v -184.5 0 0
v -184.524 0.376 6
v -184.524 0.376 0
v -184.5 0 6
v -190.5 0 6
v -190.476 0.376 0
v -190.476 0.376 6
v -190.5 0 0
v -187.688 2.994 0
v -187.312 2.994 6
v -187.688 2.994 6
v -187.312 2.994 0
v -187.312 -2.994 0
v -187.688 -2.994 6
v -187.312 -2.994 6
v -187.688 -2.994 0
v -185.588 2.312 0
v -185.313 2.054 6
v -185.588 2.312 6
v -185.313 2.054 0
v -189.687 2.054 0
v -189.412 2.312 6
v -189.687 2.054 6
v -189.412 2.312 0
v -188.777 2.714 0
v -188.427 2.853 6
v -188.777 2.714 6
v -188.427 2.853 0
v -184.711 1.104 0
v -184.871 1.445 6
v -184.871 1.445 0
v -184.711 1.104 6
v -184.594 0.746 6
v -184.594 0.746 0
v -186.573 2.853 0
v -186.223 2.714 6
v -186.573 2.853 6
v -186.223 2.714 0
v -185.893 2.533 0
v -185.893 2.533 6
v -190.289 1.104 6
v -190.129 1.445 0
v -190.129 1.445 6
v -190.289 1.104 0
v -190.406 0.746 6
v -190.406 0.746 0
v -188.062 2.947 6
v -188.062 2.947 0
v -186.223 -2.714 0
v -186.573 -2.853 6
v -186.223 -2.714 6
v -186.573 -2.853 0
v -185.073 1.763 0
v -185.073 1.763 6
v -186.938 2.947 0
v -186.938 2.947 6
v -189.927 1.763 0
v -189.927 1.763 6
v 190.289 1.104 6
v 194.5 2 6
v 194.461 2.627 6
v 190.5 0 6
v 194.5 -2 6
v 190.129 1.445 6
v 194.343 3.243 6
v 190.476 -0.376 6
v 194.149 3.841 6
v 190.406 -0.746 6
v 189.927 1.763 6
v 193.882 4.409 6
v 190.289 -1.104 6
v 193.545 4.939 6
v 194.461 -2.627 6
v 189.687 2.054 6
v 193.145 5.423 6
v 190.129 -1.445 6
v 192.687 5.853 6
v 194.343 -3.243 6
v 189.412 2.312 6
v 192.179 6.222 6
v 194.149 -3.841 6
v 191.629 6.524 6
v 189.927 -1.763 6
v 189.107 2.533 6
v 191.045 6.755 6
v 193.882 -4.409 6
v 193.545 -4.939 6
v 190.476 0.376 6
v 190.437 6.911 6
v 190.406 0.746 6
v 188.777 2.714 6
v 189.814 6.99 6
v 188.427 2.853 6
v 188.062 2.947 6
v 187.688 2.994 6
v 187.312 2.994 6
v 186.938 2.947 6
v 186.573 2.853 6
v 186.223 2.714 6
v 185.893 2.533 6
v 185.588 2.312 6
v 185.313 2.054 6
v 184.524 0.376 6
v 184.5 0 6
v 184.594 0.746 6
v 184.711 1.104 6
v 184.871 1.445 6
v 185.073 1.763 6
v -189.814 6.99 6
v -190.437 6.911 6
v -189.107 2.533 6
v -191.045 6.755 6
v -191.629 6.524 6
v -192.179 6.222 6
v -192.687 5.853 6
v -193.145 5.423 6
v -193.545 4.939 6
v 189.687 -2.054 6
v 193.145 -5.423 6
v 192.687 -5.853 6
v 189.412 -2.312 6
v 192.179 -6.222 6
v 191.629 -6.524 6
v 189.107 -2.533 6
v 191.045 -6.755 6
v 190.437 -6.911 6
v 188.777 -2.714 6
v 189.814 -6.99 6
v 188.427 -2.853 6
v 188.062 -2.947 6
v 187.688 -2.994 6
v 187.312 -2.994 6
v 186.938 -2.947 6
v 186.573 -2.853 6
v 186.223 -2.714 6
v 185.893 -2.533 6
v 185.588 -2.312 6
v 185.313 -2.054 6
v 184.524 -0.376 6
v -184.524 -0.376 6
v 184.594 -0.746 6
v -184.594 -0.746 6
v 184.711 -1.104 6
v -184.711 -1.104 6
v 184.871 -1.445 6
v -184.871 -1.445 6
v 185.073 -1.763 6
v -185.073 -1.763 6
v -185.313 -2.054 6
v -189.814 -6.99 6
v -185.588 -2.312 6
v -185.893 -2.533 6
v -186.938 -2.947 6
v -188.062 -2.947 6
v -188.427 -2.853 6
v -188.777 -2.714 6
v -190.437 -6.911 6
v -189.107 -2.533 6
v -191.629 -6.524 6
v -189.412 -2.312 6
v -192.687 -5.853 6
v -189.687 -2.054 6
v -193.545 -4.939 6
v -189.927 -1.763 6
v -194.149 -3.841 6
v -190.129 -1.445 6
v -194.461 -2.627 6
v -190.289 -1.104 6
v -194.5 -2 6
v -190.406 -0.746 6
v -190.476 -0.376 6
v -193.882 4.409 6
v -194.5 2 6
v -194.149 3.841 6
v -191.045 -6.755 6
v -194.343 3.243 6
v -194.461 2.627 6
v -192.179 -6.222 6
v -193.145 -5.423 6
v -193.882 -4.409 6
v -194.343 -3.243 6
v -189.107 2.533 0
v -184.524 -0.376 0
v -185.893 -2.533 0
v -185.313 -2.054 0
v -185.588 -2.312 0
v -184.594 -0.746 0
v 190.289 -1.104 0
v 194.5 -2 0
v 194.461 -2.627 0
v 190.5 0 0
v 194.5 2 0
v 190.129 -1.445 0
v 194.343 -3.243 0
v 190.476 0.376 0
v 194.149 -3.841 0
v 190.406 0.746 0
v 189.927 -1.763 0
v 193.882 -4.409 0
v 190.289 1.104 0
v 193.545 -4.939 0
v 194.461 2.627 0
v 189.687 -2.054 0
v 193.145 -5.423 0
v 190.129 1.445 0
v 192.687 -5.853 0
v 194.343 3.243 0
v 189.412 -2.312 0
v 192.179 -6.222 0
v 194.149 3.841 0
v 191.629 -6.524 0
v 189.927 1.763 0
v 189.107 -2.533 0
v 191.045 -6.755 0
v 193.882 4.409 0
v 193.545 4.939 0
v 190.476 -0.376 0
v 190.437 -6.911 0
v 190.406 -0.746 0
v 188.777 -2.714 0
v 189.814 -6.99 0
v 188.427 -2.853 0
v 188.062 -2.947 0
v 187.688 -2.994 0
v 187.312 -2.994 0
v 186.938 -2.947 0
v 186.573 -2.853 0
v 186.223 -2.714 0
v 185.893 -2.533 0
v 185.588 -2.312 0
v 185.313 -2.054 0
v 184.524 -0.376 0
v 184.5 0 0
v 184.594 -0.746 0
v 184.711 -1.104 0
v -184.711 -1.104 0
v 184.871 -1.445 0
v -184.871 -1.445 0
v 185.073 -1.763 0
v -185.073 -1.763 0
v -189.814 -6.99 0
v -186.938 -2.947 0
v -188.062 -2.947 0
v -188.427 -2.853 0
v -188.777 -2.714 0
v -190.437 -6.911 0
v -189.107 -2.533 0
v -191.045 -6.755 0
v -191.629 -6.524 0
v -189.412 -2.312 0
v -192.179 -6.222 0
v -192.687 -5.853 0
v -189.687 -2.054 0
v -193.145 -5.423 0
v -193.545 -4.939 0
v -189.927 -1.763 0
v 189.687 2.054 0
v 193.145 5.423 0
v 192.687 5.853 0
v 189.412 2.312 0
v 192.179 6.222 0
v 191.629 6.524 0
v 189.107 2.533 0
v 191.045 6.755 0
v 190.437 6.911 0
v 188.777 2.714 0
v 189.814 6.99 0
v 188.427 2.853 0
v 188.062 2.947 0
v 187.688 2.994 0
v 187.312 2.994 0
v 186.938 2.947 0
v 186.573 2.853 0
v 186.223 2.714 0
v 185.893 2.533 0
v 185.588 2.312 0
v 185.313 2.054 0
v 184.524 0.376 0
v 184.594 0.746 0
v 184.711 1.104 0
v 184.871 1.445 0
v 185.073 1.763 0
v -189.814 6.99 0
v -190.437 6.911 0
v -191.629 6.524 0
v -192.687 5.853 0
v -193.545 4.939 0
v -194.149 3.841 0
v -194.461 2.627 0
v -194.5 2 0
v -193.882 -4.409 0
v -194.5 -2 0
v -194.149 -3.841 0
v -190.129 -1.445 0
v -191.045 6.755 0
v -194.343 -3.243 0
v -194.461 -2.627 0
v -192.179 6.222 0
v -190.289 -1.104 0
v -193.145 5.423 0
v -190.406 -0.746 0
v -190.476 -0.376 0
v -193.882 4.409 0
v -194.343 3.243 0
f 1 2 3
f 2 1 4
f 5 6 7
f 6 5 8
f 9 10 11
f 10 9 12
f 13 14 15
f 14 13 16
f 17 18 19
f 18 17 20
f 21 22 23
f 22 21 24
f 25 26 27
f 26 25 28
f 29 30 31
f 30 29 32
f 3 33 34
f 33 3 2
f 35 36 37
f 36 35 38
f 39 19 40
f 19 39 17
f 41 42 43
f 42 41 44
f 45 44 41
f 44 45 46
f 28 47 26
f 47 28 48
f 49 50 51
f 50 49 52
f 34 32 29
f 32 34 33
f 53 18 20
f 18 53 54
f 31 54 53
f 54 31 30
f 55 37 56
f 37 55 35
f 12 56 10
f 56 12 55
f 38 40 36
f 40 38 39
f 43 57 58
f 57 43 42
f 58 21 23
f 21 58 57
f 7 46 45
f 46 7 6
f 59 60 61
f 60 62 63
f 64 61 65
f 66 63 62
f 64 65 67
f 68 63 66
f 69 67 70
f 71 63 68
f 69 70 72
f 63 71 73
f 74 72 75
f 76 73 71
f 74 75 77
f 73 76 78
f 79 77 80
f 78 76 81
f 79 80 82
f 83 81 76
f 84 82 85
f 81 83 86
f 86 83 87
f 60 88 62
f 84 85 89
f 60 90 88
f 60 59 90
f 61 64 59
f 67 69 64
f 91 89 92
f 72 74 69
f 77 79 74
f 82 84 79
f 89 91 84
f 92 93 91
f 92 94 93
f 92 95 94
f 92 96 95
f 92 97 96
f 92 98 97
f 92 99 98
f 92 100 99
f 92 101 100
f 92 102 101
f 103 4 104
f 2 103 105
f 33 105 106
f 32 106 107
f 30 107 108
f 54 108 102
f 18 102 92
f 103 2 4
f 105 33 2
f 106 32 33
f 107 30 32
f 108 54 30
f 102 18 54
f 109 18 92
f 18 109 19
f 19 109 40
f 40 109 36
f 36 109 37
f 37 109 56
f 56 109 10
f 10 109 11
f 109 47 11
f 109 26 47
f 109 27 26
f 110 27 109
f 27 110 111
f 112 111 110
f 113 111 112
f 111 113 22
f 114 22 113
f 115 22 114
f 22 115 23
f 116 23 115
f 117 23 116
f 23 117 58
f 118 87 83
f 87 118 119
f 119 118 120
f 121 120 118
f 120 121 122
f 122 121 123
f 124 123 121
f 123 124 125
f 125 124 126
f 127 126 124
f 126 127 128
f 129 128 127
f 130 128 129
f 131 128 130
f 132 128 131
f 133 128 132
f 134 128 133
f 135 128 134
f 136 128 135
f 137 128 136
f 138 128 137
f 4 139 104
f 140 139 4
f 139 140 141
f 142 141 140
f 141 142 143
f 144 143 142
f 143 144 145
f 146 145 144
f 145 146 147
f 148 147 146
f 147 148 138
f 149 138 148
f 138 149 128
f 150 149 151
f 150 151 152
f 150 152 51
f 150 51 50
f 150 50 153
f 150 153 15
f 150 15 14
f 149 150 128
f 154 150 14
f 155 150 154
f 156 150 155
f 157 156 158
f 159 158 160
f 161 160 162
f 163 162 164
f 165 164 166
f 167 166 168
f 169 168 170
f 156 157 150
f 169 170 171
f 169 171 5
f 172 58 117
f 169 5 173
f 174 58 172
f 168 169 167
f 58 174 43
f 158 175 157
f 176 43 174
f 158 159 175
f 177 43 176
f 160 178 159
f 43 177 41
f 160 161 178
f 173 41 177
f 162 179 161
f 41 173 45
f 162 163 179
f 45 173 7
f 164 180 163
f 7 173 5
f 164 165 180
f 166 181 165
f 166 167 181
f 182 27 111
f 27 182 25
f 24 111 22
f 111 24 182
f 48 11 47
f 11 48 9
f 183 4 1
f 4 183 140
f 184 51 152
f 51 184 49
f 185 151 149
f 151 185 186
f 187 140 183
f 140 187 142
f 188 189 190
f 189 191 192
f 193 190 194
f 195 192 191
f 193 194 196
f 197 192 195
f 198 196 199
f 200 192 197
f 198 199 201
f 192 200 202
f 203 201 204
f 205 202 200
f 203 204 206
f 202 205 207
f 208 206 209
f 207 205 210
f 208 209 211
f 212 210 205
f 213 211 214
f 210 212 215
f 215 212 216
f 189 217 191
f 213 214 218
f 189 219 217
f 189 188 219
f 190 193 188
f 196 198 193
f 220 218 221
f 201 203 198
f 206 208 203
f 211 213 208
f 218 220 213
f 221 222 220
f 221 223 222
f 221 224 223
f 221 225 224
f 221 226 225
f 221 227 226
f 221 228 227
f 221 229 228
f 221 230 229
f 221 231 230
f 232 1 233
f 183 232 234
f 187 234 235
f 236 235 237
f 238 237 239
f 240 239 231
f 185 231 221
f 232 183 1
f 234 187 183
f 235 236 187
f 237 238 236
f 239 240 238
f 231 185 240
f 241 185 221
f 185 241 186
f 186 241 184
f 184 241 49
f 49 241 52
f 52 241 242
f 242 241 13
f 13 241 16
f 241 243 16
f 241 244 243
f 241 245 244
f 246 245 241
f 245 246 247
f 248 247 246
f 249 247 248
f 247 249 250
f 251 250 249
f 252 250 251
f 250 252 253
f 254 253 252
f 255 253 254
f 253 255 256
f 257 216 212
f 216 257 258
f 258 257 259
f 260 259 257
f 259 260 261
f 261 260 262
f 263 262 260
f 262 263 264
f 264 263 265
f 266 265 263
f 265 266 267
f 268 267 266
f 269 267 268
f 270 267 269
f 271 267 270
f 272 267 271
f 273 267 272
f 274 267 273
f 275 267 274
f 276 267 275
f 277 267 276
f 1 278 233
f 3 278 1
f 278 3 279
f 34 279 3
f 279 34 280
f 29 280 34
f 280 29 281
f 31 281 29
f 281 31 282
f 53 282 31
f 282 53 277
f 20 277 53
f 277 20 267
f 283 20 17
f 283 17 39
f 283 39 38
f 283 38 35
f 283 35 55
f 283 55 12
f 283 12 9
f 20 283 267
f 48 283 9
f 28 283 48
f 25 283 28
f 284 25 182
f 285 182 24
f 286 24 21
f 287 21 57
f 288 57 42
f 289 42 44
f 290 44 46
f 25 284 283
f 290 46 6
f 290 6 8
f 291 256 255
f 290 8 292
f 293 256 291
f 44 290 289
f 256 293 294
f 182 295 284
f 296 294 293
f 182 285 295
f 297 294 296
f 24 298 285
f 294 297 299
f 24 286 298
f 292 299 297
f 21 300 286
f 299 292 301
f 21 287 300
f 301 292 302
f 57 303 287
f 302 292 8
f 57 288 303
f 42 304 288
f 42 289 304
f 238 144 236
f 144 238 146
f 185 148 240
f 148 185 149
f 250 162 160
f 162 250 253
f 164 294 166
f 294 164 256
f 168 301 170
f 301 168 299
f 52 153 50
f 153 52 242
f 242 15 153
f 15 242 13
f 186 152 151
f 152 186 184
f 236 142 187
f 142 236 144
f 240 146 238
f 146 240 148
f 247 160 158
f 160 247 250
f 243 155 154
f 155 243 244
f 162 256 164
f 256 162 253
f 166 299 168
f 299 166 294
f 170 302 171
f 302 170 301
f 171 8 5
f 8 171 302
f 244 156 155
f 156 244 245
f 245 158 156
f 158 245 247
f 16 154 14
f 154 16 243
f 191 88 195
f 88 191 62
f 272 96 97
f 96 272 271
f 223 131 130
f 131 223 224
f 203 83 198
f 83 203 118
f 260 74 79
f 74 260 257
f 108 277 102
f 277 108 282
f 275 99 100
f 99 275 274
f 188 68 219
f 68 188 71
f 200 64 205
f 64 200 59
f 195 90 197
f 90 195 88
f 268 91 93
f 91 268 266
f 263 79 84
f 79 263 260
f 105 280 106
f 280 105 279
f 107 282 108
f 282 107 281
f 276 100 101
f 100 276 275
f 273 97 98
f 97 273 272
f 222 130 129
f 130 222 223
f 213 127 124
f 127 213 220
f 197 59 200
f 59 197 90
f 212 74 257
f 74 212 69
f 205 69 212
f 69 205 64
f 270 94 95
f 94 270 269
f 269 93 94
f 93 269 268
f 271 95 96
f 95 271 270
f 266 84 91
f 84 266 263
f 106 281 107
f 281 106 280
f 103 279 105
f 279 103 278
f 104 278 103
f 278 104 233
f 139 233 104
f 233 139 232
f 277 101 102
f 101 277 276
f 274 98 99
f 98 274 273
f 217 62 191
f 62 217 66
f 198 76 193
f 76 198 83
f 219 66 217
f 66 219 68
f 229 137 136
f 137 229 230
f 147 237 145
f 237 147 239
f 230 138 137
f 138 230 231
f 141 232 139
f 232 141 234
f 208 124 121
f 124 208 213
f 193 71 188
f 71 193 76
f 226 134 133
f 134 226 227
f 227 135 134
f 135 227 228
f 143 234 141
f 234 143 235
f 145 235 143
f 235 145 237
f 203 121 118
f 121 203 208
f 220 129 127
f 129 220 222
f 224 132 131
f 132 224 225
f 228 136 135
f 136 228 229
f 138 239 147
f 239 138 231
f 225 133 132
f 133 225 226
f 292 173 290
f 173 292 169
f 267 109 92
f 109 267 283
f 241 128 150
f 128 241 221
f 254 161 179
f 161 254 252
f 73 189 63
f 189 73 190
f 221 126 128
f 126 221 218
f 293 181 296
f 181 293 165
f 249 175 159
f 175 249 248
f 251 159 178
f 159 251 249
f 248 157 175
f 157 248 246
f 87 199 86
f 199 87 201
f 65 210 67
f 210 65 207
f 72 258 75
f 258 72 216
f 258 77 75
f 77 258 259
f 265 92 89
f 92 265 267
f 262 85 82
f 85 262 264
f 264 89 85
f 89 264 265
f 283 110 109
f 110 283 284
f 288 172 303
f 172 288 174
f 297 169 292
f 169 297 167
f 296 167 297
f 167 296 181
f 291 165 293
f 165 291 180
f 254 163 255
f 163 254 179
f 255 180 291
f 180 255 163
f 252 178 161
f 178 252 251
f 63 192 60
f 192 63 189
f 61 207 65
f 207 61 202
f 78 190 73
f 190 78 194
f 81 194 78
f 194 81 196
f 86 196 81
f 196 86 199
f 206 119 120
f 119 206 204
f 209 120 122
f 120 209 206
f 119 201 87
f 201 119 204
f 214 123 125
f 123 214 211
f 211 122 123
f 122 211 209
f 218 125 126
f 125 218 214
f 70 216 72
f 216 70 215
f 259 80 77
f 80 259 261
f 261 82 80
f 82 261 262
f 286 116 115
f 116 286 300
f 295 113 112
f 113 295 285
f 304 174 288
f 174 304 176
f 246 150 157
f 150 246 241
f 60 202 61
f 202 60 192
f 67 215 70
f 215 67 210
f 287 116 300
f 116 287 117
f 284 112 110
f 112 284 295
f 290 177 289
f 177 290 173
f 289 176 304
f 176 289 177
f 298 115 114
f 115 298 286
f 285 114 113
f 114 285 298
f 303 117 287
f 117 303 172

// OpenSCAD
$fn = 50;


difference() {
	union() {
		hull() {
			translate(v = [-189.5000000000, 2.0000000000, 0]) {
				cylinder(h = 6, r = 5);
			}
			translate(v = [189.5000000000, 2.0000000000, 0]) {
				cylinder(h = 6, r = 5);
			}
			translate(v = [-189.5000000000, -2.0000000000, 0]) {
				cylinder(h = 6, r = 5);
			}
			translate(v = [189.5000000000, -2.0000000000, 0]) {
				cylinder(h = 6, r = 5);
			}
		}
	}
	union() {
		translate(v = [-187.5000000000, 0.0000000000, 0]) {
			cylinder(h = 6, r = 3.0000000000);
		}
		translate(v = [187.5000000000, 0.0000000000, 0]) {
			cylinder(h = 6, r = 3.0000000000);
		}
		translate(v = [-187.5000000000, 0.0000000000, 0]) {
			cylinder(h = 6, r = 1.5000000000);
		}
		translate(v = [187.5000000000, 0.0000000000, 0]) {
			cylinder(h = 6, r = 1.5000000000);
		}
		translate(v = [-187.5000000000, 0.0000000000, 0]) {
			cylinder(h = 6, r = 1.5000000000);
		}
		translate(v = [187.5000000000, 0.0000000000, 0]) {
			cylinder(h = 6, r = 1.5000000000);
		}
		translate(v = [-187.5000000000, 0.0000000000, 0]) {
			cylinder(h = 6, r = 1.5000000000);
		}
		translate(v = [187.5000000000, 0.0000000000, 0]) {
			cylinder(h = 6, r = 1.5000000000);
		}
	}
}
